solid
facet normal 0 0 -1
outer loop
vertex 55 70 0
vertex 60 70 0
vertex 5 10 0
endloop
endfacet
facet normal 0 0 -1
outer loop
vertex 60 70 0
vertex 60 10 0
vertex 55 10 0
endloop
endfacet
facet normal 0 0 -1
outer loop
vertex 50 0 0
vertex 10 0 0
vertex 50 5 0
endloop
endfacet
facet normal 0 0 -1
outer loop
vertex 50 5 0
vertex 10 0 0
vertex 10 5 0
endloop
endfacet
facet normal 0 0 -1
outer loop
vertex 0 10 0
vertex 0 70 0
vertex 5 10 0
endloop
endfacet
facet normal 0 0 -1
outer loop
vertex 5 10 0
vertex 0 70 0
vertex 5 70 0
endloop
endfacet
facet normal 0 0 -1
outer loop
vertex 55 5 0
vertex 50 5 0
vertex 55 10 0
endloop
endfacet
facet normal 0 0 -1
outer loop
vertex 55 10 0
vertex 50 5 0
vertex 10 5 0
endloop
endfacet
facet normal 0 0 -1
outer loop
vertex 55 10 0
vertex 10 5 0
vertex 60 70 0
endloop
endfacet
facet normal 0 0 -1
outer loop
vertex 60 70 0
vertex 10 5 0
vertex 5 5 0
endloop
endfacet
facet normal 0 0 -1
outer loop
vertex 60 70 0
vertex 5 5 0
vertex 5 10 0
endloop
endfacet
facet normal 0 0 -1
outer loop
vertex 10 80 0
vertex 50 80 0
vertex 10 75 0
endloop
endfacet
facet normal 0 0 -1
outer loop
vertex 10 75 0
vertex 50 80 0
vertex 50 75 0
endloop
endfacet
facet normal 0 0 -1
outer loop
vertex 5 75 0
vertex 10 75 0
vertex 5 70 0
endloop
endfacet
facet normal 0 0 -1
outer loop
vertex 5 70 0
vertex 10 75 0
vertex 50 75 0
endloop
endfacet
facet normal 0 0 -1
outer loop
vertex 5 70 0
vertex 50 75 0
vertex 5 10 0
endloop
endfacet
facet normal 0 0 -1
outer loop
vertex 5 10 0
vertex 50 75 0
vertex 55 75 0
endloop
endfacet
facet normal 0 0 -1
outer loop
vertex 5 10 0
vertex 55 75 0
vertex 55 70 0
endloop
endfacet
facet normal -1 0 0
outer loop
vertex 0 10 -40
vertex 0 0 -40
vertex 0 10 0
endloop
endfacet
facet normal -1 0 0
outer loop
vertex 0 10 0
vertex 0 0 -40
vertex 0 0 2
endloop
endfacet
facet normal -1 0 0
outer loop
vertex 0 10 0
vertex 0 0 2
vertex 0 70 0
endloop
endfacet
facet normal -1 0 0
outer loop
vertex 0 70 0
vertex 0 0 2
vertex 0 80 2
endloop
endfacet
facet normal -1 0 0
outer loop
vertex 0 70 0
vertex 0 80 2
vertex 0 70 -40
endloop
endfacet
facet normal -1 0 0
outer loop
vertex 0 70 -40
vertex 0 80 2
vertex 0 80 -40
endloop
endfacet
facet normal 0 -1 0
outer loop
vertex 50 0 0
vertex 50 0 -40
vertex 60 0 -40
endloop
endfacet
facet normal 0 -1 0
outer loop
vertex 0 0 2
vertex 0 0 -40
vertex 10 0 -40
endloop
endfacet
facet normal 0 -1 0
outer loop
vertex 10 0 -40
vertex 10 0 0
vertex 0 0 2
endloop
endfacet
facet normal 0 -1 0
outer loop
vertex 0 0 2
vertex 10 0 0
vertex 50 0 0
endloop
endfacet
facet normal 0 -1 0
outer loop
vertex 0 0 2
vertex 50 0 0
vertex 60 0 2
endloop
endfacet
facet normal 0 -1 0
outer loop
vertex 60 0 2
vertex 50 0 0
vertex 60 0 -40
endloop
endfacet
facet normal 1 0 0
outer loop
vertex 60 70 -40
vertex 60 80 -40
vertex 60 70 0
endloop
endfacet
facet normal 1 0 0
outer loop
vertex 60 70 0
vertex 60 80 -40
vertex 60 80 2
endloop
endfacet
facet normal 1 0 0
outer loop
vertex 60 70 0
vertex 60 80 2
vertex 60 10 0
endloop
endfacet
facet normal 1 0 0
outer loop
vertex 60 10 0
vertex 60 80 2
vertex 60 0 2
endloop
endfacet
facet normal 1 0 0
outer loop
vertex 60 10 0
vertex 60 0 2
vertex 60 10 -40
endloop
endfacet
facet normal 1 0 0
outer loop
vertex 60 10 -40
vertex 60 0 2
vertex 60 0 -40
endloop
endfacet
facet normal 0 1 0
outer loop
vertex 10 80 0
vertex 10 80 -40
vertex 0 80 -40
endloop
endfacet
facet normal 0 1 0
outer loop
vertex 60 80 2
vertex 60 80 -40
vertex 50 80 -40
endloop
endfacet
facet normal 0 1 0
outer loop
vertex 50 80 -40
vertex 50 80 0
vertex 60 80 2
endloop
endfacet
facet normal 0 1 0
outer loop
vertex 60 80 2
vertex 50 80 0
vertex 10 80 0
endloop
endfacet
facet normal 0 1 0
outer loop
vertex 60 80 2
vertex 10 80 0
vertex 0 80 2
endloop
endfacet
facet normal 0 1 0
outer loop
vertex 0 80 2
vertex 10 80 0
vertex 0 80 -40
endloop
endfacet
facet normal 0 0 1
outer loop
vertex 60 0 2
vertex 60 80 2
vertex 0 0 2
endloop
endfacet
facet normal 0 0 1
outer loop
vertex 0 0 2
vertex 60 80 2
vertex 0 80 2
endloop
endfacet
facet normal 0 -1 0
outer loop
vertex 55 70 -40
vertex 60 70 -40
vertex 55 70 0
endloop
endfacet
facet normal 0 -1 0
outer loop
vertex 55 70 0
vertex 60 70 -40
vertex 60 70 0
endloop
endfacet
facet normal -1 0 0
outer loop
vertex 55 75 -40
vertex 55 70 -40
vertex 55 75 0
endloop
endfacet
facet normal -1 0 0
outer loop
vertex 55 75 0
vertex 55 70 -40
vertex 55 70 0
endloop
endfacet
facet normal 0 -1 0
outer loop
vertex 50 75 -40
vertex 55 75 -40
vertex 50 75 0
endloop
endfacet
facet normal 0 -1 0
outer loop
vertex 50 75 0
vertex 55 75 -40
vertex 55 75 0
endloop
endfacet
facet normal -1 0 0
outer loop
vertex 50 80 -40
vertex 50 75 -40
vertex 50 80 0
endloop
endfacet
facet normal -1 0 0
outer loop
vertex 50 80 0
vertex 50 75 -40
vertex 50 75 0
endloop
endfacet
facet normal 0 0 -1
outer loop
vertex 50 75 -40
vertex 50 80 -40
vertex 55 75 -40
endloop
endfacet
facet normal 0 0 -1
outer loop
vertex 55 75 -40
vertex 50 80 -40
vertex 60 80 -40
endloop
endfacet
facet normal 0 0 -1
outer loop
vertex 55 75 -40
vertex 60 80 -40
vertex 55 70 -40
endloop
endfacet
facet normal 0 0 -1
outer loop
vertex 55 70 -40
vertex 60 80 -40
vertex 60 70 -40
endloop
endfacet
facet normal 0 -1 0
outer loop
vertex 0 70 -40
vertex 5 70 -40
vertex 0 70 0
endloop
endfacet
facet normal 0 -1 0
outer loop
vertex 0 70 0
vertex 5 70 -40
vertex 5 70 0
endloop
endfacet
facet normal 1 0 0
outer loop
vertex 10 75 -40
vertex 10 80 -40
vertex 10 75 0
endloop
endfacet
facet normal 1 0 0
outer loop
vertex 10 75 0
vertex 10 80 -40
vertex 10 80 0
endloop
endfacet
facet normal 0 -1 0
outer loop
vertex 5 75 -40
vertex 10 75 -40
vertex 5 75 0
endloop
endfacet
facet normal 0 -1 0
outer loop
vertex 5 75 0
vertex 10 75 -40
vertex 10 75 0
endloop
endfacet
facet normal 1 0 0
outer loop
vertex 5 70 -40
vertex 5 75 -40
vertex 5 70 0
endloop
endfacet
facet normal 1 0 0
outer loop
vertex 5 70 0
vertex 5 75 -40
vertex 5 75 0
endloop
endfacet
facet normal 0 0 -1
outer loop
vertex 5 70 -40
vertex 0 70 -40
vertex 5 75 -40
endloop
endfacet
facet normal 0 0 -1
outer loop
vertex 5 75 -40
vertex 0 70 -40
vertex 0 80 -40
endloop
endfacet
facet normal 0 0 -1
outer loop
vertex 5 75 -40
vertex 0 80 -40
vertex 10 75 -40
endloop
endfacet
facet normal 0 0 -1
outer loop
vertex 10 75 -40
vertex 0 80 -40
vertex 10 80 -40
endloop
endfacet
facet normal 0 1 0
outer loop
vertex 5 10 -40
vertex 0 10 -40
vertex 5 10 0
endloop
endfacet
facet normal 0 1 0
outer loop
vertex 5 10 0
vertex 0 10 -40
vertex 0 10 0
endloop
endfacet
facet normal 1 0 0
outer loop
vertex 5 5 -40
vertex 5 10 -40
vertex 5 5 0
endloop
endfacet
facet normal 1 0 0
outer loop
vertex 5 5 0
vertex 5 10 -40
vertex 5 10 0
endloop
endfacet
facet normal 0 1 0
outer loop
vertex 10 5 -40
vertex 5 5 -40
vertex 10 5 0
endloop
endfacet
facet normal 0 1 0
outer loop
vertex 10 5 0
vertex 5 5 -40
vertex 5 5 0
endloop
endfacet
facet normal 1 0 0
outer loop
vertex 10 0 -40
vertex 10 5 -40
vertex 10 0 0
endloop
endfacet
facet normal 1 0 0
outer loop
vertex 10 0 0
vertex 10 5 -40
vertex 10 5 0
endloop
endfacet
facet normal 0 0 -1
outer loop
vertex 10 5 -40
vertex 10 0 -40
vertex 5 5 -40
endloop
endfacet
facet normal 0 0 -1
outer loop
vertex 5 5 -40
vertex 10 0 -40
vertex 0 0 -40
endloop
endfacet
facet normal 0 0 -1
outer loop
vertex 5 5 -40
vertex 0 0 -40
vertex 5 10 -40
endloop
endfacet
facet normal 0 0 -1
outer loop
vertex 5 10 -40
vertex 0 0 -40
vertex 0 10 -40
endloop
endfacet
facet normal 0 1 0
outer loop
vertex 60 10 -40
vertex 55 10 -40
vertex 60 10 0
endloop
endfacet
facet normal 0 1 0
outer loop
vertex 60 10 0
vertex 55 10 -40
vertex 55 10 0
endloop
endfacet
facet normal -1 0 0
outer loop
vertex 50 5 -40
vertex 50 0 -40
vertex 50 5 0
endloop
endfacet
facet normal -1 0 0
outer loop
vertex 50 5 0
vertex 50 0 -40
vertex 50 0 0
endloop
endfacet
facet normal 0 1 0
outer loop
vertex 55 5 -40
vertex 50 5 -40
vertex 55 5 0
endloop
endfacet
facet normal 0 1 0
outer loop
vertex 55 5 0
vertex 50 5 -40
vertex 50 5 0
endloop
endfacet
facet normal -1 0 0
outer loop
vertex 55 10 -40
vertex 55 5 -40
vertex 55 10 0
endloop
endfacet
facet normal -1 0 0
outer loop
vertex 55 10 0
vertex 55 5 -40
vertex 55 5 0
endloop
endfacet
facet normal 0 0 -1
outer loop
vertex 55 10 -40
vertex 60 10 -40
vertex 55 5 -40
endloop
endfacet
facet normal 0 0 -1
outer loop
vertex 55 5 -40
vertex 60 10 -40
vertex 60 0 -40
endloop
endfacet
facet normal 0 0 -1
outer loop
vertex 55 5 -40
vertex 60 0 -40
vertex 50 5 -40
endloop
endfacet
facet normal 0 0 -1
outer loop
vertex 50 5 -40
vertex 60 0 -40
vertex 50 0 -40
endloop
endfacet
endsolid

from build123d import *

# Parameters (mm, degrees)
ESQUISSE2_W        = 60
ESQUISSE2_H        = 80
BOSS_EXTRU_1_DEPTH = 2
BOSS_EXTRU_3_DEPTH = 40


with BuildPart() as part:
    # Esquisse2 → Boss.-Extru.1 (new body)
    with BuildSketch(Plane.XY):
        with Locations((30, 40)):
            Rectangle(ESQUISSE2_W, ESQUISSE2_H)
    extrude(amount=BOSS_EXTRU_1_DEPTH)

    # Esquisse3 → Boss.-Extru.3 (add)
    with BuildSketch(Plane(origin=(0, 0, 0), x_dir=(-1, 0, 0), z_dir=(0, 0, -1))):
        Polygon((-60, 0), (-50, 0), (-50, 5), (-55, 5), (-55, 10), (-60, 10), align=None)
        Polygon((0, 0), (-10, 0), (-10, 5), (-5, 5), (-5, 10), (0, 10), align=None)
        Polygon((0, 80), (-10, 80), (-10, 75), (-5, 75), (-5, 70), (0, 70), align=None)
        Polygon((-60, 80), (-50, 80), (-50, 75), (-55, 75), (-55, 70), (-60, 70), align=None)
    extrude(amount=BOSS_EXTRU_3_DEPTH)


solid = part.part
